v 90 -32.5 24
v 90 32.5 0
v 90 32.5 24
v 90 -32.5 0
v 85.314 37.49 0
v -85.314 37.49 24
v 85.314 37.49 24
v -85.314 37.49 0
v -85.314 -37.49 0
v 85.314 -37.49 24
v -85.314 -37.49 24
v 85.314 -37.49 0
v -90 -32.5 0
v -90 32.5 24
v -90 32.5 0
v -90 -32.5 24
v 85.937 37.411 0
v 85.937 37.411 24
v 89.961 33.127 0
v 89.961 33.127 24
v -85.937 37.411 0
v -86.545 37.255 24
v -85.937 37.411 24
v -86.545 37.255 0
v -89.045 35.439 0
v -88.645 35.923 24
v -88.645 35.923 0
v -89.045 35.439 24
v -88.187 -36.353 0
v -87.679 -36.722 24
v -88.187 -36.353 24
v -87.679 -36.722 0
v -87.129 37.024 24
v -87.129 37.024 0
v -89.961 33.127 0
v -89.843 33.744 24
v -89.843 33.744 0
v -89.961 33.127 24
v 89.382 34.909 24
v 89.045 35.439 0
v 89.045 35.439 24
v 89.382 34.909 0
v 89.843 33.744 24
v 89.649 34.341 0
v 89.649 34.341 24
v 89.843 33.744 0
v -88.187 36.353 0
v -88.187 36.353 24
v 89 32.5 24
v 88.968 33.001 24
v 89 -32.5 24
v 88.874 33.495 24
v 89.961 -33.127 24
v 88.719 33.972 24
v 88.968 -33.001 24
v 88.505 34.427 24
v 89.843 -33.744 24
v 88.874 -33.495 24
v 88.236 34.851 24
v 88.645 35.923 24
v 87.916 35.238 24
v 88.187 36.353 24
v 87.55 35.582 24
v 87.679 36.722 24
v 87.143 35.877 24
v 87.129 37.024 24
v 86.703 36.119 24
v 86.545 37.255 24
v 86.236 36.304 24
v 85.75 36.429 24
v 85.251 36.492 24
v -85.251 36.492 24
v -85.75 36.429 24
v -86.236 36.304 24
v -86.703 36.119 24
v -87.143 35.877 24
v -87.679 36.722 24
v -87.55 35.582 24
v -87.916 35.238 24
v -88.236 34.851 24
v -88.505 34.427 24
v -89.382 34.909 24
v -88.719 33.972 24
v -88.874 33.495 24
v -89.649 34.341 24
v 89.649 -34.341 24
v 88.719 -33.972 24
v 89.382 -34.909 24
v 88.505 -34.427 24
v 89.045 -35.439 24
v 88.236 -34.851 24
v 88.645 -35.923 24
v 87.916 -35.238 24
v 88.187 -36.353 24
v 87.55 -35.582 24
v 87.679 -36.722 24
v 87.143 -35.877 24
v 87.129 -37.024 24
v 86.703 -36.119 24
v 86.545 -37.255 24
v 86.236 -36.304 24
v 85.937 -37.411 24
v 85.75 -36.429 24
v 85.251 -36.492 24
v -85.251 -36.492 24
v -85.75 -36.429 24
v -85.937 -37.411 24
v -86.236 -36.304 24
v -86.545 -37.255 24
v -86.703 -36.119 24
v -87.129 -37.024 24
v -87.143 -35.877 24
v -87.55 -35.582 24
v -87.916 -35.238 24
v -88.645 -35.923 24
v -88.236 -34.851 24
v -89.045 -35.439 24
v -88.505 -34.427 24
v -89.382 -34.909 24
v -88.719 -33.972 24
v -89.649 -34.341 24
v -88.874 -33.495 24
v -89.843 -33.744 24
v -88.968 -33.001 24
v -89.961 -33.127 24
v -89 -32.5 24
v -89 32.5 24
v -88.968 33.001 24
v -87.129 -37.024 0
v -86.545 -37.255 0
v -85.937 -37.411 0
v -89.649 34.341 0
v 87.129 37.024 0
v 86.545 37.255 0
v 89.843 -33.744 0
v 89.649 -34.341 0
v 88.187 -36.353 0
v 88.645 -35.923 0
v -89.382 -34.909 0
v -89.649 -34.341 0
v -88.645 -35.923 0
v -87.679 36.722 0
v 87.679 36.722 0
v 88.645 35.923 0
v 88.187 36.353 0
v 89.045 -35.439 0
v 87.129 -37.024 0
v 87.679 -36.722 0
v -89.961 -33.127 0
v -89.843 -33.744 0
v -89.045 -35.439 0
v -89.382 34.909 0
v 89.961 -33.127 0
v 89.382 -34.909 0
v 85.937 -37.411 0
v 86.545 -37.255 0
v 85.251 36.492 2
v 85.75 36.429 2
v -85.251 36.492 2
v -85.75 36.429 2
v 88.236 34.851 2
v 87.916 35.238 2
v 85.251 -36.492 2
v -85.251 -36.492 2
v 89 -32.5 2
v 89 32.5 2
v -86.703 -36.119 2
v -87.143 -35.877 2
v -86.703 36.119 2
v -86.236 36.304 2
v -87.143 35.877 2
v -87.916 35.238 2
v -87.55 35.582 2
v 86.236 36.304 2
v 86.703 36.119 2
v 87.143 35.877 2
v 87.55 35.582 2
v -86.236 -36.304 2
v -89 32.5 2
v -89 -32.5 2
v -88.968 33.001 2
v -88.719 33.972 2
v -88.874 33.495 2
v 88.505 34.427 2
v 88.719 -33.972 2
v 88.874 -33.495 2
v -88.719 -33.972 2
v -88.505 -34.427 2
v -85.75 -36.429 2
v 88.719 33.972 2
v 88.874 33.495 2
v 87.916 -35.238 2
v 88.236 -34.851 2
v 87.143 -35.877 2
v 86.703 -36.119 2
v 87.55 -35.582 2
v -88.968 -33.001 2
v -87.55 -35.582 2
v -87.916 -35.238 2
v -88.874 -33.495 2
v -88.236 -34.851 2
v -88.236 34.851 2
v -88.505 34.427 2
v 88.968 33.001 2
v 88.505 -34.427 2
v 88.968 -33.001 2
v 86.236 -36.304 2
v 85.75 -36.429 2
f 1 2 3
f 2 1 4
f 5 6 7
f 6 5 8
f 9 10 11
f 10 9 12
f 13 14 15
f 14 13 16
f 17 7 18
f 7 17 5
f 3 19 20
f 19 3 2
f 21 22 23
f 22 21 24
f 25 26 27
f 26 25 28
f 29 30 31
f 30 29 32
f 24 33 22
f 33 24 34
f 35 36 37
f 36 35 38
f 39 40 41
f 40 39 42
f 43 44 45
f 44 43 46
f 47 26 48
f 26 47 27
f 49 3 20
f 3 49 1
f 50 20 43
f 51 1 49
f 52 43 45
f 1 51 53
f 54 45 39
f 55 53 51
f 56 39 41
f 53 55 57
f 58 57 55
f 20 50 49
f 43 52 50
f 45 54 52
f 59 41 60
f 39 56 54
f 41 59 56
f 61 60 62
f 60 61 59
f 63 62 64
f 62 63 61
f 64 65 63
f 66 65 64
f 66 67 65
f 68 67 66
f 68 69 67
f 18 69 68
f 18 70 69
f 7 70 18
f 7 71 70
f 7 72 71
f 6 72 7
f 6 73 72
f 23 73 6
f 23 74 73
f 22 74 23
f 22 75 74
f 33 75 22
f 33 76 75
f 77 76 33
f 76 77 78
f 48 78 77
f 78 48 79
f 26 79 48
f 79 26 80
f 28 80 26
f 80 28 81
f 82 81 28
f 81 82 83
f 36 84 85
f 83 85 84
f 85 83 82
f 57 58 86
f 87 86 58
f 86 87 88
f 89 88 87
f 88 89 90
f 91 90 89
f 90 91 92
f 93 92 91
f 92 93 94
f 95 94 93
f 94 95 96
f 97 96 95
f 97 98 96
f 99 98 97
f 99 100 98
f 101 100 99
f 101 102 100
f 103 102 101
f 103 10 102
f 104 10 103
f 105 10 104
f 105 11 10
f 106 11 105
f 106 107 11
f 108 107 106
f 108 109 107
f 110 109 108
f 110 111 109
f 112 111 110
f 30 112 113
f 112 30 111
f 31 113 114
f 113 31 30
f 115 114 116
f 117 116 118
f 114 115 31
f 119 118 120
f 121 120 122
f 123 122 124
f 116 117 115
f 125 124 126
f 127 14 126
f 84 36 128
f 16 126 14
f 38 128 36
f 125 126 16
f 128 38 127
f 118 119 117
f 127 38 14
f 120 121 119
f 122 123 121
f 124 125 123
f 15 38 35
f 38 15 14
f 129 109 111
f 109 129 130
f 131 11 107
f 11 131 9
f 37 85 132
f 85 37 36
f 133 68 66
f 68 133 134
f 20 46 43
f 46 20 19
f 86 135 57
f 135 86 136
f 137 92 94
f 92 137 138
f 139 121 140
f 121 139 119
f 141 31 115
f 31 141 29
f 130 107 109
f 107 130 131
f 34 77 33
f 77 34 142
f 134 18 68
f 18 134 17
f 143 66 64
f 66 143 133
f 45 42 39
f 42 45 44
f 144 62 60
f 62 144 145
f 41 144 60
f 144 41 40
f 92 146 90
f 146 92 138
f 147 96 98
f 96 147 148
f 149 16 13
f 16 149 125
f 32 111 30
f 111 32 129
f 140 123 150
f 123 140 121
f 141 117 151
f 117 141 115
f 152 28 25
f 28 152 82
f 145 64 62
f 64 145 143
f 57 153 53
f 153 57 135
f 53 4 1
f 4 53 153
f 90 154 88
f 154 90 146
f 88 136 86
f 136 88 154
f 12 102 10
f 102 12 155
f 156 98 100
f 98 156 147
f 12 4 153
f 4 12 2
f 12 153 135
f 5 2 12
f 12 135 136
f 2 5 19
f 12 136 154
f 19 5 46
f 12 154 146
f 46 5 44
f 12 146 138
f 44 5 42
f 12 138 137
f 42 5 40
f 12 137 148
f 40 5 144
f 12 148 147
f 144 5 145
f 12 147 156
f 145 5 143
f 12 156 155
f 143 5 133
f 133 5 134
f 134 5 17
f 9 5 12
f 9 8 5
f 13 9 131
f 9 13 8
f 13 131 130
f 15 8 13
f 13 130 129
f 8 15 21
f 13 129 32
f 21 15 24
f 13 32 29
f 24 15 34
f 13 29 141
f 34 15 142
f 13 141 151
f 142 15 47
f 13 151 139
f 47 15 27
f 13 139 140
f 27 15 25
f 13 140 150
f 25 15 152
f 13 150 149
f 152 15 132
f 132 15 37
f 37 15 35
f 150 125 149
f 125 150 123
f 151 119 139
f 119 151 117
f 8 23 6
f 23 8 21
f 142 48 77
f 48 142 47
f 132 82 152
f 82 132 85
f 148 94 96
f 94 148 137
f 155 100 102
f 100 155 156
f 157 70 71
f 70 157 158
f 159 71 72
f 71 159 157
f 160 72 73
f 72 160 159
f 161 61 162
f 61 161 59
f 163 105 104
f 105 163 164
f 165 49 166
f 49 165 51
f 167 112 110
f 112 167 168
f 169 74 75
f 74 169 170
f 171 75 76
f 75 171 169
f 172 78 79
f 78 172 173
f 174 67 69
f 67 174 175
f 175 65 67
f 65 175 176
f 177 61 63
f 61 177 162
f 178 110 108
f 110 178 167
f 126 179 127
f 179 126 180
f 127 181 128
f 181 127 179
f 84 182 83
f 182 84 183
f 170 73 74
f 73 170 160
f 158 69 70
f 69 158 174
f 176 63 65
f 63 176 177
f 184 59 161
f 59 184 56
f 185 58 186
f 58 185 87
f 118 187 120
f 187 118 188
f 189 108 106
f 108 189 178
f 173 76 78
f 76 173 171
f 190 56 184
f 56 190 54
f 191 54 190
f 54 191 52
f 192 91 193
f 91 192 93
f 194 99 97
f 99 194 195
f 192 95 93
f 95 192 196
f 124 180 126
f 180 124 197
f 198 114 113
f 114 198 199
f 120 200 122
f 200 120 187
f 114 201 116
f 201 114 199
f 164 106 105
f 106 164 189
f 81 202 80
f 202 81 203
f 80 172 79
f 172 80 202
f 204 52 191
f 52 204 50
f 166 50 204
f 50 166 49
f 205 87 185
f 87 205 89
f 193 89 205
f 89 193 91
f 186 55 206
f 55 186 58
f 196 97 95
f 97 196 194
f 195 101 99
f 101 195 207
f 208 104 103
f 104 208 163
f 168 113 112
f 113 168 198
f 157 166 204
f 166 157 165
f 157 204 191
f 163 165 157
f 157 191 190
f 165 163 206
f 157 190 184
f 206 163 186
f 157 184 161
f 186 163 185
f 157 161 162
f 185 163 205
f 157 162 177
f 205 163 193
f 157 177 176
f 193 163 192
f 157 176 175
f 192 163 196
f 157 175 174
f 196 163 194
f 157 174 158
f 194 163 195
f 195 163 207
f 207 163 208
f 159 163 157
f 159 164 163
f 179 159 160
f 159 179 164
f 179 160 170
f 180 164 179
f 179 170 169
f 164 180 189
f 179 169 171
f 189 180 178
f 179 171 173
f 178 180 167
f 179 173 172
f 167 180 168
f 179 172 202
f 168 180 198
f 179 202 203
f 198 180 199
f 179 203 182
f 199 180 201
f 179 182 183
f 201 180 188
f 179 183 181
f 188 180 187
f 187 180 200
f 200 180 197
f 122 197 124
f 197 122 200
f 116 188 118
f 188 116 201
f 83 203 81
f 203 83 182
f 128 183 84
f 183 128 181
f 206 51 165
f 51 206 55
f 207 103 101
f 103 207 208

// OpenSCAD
$fn = 50;


difference() {
	union() {
		hull() {
			translate(v = [-85.0000000000, 32.5000000000, 0]) {
				cylinder(h = 24, r = 5);
			}
			translate(v = [85.0000000000, 32.5000000000, 0]) {
				cylinder(h = 24, r = 5);
			}
			translate(v = [-85.0000000000, -32.5000000000, 0]) {
				cylinder(h = 24, r = 5);
			}
			translate(v = [85.0000000000, -32.5000000000, 0]) {
				cylinder(h = 24, r = 5);
			}
		}
	}
	union() {
		translate(v = [0, 0, 2]) {
			hull() {
				translate(v = [-85.0000000000, 32.5000000000, 0]) {
					cylinder(h = 22, r = 4);
				}
				translate(v = [85.0000000000, 32.5000000000, 0]) {
					cylinder(h = 22, r = 4);
				}
				translate(v = [-85.0000000000, -32.5000000000, 0]) {
					cylinder(h = 22, r = 4);
				}
				translate(v = [85.0000000000, -32.5000000000, 0]) {
					cylinder(h = 22, r = 4);
				}
			}
		}
	}
}
